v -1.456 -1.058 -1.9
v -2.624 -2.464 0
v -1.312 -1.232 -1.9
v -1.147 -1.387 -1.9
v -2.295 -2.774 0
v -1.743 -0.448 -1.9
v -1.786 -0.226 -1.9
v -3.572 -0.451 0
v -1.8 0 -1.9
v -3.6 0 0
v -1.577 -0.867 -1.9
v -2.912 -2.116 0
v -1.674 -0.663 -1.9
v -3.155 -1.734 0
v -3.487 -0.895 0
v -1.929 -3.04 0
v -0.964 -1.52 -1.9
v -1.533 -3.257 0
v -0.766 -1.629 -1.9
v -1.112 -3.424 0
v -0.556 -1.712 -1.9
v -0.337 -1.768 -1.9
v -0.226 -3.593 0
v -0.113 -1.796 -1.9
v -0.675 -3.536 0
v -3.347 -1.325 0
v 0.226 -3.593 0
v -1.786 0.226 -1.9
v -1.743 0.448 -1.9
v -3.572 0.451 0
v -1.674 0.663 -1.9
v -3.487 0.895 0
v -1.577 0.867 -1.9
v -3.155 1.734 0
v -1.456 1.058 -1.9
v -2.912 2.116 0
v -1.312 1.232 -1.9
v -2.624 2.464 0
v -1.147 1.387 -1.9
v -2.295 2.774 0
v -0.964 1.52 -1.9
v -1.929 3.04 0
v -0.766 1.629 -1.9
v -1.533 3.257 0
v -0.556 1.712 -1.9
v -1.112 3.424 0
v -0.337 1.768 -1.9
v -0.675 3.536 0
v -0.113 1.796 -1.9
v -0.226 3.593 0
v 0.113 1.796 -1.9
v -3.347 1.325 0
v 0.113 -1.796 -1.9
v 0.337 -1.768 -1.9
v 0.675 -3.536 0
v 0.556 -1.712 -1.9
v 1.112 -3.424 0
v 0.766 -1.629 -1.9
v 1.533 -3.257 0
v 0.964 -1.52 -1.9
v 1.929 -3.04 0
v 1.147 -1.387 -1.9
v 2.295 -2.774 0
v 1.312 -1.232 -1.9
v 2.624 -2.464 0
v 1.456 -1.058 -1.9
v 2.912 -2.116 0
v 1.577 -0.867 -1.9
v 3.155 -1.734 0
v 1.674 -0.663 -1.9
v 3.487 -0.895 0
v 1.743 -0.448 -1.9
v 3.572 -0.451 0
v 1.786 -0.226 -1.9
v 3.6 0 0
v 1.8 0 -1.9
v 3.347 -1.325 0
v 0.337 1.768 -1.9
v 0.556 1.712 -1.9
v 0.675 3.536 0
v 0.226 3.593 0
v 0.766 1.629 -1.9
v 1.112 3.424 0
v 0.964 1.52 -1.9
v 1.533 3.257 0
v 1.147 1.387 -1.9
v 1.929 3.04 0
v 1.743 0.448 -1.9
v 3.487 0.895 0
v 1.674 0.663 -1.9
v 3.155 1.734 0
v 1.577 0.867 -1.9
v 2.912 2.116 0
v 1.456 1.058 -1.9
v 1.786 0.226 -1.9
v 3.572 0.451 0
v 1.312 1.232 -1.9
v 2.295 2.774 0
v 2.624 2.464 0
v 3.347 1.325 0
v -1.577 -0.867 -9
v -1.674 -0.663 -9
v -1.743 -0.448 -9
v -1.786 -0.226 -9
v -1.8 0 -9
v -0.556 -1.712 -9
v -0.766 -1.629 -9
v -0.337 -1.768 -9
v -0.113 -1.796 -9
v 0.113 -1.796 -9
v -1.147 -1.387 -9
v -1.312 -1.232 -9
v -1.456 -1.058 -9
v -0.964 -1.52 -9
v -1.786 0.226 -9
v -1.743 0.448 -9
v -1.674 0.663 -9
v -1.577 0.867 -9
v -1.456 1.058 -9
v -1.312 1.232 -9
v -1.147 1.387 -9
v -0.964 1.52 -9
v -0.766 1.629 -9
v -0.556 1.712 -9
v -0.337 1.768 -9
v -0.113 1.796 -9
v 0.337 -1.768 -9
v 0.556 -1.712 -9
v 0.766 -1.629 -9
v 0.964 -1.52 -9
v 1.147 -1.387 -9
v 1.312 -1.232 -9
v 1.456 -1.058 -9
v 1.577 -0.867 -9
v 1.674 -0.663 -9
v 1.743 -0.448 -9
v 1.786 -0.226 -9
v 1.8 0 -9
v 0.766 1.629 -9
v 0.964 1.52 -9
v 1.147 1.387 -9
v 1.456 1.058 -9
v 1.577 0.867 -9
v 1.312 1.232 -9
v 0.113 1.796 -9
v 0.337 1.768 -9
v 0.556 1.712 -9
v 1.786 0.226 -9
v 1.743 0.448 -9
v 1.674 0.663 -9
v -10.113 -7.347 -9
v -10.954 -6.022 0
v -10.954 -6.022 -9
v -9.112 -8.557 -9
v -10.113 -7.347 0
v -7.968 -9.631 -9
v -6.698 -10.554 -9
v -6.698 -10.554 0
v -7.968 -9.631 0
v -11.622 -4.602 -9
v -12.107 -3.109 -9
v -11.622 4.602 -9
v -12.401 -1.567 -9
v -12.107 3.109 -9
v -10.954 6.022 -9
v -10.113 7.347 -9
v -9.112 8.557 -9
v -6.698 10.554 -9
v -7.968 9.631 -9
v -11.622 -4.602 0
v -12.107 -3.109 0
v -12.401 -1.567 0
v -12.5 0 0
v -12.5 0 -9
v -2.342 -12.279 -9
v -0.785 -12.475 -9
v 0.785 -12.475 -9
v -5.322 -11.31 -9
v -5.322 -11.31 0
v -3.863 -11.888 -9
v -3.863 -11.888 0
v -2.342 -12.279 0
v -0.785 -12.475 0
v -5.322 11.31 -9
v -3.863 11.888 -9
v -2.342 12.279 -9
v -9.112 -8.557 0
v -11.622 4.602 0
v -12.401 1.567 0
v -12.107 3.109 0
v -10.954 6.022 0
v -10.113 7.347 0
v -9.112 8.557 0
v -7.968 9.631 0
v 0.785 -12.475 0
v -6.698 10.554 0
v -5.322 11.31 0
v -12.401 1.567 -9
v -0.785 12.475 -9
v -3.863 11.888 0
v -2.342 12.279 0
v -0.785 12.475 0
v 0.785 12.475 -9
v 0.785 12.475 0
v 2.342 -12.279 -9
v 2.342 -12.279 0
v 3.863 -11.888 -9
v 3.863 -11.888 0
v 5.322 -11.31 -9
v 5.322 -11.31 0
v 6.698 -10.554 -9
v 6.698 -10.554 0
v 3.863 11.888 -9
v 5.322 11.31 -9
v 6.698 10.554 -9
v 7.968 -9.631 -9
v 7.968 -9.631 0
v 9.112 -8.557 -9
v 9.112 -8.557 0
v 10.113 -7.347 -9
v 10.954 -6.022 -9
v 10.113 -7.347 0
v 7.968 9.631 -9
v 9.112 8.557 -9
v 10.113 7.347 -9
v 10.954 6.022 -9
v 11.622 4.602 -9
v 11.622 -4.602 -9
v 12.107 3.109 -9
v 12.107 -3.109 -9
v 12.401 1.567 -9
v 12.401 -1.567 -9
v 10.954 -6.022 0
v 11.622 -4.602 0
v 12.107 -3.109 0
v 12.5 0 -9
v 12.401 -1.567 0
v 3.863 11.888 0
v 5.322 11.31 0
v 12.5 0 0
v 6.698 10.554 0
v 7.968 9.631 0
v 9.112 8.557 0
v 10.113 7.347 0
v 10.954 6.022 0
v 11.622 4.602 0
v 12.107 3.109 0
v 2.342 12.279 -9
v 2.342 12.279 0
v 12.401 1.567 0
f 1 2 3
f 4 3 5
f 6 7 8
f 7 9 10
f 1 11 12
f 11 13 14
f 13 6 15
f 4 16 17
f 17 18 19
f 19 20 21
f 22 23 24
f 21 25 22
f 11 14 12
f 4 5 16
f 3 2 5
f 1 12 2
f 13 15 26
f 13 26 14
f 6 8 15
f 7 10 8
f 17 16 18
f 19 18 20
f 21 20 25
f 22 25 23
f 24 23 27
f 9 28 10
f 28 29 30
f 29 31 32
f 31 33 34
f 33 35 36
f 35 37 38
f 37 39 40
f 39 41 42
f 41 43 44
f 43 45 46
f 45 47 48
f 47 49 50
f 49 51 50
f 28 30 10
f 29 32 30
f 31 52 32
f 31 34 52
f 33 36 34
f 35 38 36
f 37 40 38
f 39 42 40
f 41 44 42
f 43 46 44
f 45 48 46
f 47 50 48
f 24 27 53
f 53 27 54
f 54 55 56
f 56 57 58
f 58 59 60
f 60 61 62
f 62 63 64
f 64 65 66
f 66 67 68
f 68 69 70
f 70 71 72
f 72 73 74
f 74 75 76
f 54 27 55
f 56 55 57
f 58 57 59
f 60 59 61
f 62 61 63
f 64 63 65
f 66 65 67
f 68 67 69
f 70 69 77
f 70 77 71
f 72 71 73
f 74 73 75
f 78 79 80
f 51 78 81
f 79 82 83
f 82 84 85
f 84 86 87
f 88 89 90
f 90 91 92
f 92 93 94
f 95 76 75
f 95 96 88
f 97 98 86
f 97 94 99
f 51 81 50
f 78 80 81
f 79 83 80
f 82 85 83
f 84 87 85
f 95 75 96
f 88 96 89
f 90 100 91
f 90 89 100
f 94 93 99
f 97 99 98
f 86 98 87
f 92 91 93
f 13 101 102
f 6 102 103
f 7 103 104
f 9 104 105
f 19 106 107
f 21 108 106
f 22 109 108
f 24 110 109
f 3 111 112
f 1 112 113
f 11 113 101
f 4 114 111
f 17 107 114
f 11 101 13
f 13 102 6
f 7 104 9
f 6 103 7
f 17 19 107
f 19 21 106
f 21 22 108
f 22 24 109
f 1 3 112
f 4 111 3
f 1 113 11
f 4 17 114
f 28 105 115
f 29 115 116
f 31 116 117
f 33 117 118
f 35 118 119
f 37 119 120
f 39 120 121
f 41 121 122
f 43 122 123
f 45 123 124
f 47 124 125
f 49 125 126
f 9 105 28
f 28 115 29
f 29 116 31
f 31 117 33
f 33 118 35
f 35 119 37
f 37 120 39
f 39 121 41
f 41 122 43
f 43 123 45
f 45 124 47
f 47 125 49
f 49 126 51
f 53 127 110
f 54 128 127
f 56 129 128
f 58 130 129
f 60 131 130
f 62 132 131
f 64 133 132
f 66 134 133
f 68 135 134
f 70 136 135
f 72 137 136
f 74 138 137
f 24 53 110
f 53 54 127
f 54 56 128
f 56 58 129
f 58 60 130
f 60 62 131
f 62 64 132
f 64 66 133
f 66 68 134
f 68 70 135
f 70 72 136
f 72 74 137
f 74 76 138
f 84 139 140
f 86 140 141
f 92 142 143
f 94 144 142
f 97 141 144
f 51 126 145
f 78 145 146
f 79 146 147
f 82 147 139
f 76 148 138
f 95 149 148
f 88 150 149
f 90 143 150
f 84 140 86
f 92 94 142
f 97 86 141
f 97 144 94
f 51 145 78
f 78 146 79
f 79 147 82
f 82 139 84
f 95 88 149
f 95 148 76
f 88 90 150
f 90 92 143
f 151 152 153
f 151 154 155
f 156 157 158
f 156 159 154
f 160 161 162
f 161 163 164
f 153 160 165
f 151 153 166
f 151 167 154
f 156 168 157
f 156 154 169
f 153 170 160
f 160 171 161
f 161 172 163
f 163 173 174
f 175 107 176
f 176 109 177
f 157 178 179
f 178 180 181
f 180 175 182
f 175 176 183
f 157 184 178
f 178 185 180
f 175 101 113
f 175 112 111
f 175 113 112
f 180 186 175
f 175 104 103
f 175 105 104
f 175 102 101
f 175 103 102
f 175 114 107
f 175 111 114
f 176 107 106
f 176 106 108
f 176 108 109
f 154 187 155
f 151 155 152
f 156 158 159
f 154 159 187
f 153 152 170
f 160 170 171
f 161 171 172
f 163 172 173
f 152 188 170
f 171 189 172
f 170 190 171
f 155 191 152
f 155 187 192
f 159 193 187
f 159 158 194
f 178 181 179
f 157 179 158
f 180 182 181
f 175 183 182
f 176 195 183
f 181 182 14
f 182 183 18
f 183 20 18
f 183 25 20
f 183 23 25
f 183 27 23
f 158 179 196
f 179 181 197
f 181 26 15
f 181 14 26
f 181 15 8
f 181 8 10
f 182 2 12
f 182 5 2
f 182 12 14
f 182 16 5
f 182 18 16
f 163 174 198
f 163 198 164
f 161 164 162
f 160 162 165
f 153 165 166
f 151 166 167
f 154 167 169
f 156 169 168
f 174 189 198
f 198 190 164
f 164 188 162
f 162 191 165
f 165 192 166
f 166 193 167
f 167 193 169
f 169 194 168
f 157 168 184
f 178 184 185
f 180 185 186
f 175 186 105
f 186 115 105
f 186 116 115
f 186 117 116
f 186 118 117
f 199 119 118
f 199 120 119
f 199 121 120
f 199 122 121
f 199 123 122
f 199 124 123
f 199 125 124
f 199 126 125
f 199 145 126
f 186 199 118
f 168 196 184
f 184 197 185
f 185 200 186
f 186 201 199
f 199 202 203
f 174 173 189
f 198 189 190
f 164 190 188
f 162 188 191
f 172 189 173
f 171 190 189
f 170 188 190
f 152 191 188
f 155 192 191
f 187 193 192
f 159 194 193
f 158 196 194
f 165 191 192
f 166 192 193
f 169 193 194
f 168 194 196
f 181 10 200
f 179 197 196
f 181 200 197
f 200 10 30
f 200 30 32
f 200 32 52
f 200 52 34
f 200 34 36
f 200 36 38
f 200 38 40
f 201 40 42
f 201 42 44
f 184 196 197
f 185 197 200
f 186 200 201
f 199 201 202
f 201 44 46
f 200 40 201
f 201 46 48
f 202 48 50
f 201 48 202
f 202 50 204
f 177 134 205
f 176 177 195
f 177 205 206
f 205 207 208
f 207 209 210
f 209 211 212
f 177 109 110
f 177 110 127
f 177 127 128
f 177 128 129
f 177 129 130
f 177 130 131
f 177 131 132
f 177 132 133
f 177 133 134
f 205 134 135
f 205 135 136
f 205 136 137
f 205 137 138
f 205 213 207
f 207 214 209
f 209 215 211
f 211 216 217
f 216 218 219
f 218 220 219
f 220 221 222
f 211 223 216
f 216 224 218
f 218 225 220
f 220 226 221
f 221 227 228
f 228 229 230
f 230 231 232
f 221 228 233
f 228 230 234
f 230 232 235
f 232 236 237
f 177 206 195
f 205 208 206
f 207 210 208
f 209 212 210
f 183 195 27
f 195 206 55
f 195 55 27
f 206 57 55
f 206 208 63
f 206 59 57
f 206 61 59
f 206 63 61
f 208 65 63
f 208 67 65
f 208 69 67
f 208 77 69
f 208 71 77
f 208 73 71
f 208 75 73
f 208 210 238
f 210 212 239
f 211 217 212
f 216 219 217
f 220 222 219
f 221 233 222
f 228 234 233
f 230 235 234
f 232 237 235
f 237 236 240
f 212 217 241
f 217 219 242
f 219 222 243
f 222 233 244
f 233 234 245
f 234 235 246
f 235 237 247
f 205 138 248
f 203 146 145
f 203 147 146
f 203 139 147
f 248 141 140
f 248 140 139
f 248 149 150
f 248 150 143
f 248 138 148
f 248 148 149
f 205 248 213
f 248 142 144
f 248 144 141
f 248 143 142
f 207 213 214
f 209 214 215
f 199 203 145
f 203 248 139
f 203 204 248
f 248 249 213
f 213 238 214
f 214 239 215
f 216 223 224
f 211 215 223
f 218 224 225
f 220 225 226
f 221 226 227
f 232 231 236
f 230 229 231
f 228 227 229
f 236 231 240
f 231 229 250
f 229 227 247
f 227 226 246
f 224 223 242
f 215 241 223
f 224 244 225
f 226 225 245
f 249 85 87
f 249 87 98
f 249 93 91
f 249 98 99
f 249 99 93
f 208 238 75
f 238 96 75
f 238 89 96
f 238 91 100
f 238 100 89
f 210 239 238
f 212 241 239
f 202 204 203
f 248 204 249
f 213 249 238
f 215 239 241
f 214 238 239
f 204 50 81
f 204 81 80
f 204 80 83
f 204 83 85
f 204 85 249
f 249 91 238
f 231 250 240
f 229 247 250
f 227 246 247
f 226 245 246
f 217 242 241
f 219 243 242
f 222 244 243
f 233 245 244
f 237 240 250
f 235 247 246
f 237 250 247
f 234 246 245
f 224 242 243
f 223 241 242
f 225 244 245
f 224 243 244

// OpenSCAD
$fn = 50;

difference() {
	union() {
		translate(v = [0, 0, -9.0]) {
			cylinder(h = 9, r = 12.5);
		}
	}
	union() {
		translate(v = [0, 0, 0]) {
			rotate(a = [0, 0, 0]) {
				difference() {
					union() {
						translate(v = [0, 0, -12.0]) {
							cylinder(h = 12, r = 1.5);
						}
						translate(v = [0, 0, -1.9]) {
							cylinder(h = 1.9, r1 = 1.8, r2 = 3.6);
						}
						translate(v = [0, 0, -12.0]) {
							cylinder(h = 12, r = 1.8);
						}
						translate(v = [0, 0, -12.0]) {
							cylinder(h = 12, r = 1.5);
						}
					}
					union();
				}
			}
		}
	}
}
